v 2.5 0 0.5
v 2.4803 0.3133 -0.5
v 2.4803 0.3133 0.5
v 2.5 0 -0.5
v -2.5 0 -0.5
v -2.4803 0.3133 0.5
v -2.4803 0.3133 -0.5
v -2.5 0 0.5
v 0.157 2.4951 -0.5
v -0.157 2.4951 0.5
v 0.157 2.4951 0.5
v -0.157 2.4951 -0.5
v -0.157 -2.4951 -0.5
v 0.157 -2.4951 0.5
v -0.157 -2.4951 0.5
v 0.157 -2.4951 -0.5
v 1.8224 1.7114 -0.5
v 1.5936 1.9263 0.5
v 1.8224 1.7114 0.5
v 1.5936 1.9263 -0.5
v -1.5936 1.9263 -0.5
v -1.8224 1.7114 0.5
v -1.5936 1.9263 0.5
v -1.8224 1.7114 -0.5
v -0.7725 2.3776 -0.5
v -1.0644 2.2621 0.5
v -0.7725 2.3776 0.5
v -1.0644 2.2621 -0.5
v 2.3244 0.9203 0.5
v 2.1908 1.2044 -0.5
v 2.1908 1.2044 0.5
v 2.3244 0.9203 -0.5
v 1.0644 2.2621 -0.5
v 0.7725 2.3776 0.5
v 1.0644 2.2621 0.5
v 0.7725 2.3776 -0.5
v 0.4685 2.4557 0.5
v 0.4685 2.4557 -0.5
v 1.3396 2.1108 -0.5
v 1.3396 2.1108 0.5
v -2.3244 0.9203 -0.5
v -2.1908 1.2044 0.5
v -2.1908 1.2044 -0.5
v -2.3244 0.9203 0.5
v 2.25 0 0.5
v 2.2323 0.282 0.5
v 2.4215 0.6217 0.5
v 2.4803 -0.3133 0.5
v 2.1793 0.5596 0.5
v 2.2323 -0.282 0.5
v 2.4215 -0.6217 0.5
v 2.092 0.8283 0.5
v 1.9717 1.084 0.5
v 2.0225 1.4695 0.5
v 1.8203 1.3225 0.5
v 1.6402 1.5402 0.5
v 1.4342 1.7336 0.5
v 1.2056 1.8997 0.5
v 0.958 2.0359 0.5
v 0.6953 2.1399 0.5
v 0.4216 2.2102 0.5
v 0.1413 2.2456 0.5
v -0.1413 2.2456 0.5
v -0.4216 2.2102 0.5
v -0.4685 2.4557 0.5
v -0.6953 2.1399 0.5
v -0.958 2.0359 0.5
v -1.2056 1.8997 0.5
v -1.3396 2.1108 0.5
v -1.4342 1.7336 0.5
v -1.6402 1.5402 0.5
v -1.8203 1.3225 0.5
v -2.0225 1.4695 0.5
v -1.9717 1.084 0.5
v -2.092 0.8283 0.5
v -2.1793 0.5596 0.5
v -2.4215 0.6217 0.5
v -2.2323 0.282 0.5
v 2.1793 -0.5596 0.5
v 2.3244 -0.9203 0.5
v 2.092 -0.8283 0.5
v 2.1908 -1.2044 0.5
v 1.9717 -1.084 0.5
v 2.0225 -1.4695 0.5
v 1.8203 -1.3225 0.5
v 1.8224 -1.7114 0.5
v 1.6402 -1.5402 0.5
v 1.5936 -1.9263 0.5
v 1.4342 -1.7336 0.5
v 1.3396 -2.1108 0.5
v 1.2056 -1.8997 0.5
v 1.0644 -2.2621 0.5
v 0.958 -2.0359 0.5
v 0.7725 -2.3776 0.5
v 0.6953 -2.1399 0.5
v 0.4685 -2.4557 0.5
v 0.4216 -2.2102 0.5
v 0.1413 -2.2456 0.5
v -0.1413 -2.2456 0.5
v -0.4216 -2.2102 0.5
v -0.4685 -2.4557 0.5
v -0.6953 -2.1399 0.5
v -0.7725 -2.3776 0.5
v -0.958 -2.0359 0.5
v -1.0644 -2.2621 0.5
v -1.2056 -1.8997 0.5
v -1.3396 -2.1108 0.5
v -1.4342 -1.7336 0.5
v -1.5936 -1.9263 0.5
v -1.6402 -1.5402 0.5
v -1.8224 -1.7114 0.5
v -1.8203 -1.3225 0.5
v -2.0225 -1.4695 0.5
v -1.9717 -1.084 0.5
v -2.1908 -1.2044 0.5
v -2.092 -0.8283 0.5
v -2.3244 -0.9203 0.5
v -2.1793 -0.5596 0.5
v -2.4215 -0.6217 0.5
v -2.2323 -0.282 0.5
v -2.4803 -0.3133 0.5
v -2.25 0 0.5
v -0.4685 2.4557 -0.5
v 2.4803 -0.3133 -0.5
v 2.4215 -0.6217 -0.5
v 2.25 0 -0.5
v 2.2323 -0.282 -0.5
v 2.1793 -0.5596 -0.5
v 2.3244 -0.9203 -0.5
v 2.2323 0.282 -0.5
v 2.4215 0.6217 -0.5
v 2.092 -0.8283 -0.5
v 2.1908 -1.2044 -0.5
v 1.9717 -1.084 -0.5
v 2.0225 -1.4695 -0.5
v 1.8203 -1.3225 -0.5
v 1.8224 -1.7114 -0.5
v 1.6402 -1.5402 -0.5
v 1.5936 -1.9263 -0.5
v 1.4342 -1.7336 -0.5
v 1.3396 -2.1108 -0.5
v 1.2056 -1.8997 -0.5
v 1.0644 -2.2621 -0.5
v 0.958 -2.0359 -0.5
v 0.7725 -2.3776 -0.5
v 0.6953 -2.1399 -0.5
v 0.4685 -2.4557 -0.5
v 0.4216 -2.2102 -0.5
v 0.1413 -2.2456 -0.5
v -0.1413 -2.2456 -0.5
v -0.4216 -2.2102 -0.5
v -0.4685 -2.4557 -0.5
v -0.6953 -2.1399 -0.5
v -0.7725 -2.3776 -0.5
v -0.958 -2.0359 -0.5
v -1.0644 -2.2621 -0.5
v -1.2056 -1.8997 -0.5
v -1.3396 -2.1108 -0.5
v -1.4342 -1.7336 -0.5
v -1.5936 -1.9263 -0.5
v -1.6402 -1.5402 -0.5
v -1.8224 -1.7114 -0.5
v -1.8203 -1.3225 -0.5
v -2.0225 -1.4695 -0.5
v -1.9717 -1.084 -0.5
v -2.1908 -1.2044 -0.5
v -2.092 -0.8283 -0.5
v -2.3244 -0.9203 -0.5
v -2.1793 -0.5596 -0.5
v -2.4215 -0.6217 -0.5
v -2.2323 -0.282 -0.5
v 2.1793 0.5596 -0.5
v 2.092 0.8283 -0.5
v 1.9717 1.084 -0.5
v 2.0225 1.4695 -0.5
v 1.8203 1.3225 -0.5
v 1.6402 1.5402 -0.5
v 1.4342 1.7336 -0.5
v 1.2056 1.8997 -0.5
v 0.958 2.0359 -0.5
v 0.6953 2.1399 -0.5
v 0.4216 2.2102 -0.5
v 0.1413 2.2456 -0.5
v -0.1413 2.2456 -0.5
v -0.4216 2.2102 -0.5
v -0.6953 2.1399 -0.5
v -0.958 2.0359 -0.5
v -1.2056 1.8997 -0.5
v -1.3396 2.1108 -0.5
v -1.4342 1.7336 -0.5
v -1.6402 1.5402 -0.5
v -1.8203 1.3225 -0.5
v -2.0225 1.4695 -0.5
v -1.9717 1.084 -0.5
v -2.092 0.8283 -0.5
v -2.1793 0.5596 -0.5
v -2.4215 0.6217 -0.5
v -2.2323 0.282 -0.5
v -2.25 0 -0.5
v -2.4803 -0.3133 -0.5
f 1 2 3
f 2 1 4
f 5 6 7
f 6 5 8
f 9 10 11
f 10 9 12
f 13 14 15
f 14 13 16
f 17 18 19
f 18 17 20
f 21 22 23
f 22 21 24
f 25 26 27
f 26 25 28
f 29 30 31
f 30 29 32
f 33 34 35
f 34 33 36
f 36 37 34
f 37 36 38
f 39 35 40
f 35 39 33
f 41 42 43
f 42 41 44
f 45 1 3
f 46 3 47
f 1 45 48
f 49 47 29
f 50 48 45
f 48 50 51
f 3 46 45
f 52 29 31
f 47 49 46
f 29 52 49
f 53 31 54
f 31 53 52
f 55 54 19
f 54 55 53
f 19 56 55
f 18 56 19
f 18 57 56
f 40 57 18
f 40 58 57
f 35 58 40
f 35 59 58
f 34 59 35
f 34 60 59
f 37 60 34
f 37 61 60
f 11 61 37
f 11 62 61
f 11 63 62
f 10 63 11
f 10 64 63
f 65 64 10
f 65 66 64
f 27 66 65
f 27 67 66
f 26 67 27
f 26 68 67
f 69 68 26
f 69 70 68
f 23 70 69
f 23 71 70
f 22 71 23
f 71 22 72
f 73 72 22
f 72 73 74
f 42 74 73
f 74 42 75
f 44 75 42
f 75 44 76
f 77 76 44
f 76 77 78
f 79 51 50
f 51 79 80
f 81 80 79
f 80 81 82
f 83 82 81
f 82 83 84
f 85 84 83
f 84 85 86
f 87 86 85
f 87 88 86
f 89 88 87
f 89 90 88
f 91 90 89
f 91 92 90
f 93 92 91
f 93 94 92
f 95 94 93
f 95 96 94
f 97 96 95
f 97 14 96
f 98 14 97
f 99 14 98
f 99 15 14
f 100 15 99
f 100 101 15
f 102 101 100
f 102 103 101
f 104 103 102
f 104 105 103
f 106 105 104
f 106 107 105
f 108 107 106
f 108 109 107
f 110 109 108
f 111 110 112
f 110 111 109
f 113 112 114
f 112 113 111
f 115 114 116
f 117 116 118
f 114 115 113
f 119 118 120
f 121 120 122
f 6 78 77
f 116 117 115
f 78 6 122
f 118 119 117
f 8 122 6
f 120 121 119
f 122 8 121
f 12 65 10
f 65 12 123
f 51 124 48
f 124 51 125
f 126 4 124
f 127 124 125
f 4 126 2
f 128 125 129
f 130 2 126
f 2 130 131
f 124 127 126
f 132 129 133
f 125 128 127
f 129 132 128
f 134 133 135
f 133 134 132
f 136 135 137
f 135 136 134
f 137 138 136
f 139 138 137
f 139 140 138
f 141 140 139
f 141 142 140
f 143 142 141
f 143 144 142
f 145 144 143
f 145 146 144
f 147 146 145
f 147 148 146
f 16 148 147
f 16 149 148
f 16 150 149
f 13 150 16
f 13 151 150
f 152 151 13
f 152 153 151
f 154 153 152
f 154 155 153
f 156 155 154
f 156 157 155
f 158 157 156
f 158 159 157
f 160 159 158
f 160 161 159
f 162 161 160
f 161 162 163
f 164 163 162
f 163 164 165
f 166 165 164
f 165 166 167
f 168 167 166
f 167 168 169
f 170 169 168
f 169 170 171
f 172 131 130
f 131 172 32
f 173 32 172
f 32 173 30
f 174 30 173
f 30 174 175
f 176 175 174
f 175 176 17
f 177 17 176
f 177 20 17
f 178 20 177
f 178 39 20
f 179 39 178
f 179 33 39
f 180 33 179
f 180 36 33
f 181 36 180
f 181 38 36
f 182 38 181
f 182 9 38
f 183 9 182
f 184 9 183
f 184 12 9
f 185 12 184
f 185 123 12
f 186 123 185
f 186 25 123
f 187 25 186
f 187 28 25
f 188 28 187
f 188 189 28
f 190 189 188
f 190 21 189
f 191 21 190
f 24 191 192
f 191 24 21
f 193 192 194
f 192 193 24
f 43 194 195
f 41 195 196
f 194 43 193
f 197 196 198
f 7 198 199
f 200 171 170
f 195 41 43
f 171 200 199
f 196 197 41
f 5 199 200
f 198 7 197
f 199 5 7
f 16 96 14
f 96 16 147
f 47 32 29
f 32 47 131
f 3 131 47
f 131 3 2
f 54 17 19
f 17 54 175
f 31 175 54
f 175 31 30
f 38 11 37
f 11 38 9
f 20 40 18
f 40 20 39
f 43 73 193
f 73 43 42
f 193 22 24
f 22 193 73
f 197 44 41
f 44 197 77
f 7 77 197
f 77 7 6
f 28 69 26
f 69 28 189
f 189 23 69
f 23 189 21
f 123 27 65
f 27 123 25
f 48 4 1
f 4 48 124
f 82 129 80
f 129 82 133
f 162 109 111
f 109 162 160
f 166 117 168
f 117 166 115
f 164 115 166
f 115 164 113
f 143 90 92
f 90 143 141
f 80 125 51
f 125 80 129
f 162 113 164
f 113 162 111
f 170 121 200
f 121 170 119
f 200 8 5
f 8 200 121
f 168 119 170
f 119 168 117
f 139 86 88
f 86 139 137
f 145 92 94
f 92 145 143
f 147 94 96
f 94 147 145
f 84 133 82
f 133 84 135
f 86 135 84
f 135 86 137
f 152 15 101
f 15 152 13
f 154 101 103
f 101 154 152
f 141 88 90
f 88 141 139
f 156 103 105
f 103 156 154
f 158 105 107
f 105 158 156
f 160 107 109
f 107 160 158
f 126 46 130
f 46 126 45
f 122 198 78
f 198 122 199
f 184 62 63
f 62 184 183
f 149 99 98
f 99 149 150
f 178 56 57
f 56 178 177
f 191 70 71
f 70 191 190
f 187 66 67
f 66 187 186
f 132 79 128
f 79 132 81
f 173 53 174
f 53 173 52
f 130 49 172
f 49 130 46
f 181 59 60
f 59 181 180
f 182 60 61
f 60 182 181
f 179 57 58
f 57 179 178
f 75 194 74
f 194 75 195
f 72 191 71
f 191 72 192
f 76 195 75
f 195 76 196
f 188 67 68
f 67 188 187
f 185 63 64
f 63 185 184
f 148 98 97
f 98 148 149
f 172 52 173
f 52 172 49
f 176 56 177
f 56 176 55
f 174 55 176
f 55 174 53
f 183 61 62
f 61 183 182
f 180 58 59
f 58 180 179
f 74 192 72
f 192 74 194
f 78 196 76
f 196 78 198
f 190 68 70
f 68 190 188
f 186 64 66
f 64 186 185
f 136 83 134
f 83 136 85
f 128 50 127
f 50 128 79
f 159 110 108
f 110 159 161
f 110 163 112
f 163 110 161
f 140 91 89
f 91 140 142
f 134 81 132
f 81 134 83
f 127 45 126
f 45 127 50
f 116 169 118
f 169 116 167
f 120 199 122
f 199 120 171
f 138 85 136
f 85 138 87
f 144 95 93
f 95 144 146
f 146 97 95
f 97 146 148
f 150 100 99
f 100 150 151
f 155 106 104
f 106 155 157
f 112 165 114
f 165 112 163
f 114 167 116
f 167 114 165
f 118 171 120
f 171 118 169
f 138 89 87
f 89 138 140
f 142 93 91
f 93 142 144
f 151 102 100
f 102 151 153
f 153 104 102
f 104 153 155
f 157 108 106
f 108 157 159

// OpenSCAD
$fn = 50;


difference() {
	union() {
		translate(v = [0, 0, -0.5000000000]) {
			cylinder(h = 1, r = 2.5000000000);
		}
	}
	union() {
		translate(v = [0, 0, -100.0000000000]) {
			cylinder(h = 200, r = 2.2500000000);
		}
	}
}
